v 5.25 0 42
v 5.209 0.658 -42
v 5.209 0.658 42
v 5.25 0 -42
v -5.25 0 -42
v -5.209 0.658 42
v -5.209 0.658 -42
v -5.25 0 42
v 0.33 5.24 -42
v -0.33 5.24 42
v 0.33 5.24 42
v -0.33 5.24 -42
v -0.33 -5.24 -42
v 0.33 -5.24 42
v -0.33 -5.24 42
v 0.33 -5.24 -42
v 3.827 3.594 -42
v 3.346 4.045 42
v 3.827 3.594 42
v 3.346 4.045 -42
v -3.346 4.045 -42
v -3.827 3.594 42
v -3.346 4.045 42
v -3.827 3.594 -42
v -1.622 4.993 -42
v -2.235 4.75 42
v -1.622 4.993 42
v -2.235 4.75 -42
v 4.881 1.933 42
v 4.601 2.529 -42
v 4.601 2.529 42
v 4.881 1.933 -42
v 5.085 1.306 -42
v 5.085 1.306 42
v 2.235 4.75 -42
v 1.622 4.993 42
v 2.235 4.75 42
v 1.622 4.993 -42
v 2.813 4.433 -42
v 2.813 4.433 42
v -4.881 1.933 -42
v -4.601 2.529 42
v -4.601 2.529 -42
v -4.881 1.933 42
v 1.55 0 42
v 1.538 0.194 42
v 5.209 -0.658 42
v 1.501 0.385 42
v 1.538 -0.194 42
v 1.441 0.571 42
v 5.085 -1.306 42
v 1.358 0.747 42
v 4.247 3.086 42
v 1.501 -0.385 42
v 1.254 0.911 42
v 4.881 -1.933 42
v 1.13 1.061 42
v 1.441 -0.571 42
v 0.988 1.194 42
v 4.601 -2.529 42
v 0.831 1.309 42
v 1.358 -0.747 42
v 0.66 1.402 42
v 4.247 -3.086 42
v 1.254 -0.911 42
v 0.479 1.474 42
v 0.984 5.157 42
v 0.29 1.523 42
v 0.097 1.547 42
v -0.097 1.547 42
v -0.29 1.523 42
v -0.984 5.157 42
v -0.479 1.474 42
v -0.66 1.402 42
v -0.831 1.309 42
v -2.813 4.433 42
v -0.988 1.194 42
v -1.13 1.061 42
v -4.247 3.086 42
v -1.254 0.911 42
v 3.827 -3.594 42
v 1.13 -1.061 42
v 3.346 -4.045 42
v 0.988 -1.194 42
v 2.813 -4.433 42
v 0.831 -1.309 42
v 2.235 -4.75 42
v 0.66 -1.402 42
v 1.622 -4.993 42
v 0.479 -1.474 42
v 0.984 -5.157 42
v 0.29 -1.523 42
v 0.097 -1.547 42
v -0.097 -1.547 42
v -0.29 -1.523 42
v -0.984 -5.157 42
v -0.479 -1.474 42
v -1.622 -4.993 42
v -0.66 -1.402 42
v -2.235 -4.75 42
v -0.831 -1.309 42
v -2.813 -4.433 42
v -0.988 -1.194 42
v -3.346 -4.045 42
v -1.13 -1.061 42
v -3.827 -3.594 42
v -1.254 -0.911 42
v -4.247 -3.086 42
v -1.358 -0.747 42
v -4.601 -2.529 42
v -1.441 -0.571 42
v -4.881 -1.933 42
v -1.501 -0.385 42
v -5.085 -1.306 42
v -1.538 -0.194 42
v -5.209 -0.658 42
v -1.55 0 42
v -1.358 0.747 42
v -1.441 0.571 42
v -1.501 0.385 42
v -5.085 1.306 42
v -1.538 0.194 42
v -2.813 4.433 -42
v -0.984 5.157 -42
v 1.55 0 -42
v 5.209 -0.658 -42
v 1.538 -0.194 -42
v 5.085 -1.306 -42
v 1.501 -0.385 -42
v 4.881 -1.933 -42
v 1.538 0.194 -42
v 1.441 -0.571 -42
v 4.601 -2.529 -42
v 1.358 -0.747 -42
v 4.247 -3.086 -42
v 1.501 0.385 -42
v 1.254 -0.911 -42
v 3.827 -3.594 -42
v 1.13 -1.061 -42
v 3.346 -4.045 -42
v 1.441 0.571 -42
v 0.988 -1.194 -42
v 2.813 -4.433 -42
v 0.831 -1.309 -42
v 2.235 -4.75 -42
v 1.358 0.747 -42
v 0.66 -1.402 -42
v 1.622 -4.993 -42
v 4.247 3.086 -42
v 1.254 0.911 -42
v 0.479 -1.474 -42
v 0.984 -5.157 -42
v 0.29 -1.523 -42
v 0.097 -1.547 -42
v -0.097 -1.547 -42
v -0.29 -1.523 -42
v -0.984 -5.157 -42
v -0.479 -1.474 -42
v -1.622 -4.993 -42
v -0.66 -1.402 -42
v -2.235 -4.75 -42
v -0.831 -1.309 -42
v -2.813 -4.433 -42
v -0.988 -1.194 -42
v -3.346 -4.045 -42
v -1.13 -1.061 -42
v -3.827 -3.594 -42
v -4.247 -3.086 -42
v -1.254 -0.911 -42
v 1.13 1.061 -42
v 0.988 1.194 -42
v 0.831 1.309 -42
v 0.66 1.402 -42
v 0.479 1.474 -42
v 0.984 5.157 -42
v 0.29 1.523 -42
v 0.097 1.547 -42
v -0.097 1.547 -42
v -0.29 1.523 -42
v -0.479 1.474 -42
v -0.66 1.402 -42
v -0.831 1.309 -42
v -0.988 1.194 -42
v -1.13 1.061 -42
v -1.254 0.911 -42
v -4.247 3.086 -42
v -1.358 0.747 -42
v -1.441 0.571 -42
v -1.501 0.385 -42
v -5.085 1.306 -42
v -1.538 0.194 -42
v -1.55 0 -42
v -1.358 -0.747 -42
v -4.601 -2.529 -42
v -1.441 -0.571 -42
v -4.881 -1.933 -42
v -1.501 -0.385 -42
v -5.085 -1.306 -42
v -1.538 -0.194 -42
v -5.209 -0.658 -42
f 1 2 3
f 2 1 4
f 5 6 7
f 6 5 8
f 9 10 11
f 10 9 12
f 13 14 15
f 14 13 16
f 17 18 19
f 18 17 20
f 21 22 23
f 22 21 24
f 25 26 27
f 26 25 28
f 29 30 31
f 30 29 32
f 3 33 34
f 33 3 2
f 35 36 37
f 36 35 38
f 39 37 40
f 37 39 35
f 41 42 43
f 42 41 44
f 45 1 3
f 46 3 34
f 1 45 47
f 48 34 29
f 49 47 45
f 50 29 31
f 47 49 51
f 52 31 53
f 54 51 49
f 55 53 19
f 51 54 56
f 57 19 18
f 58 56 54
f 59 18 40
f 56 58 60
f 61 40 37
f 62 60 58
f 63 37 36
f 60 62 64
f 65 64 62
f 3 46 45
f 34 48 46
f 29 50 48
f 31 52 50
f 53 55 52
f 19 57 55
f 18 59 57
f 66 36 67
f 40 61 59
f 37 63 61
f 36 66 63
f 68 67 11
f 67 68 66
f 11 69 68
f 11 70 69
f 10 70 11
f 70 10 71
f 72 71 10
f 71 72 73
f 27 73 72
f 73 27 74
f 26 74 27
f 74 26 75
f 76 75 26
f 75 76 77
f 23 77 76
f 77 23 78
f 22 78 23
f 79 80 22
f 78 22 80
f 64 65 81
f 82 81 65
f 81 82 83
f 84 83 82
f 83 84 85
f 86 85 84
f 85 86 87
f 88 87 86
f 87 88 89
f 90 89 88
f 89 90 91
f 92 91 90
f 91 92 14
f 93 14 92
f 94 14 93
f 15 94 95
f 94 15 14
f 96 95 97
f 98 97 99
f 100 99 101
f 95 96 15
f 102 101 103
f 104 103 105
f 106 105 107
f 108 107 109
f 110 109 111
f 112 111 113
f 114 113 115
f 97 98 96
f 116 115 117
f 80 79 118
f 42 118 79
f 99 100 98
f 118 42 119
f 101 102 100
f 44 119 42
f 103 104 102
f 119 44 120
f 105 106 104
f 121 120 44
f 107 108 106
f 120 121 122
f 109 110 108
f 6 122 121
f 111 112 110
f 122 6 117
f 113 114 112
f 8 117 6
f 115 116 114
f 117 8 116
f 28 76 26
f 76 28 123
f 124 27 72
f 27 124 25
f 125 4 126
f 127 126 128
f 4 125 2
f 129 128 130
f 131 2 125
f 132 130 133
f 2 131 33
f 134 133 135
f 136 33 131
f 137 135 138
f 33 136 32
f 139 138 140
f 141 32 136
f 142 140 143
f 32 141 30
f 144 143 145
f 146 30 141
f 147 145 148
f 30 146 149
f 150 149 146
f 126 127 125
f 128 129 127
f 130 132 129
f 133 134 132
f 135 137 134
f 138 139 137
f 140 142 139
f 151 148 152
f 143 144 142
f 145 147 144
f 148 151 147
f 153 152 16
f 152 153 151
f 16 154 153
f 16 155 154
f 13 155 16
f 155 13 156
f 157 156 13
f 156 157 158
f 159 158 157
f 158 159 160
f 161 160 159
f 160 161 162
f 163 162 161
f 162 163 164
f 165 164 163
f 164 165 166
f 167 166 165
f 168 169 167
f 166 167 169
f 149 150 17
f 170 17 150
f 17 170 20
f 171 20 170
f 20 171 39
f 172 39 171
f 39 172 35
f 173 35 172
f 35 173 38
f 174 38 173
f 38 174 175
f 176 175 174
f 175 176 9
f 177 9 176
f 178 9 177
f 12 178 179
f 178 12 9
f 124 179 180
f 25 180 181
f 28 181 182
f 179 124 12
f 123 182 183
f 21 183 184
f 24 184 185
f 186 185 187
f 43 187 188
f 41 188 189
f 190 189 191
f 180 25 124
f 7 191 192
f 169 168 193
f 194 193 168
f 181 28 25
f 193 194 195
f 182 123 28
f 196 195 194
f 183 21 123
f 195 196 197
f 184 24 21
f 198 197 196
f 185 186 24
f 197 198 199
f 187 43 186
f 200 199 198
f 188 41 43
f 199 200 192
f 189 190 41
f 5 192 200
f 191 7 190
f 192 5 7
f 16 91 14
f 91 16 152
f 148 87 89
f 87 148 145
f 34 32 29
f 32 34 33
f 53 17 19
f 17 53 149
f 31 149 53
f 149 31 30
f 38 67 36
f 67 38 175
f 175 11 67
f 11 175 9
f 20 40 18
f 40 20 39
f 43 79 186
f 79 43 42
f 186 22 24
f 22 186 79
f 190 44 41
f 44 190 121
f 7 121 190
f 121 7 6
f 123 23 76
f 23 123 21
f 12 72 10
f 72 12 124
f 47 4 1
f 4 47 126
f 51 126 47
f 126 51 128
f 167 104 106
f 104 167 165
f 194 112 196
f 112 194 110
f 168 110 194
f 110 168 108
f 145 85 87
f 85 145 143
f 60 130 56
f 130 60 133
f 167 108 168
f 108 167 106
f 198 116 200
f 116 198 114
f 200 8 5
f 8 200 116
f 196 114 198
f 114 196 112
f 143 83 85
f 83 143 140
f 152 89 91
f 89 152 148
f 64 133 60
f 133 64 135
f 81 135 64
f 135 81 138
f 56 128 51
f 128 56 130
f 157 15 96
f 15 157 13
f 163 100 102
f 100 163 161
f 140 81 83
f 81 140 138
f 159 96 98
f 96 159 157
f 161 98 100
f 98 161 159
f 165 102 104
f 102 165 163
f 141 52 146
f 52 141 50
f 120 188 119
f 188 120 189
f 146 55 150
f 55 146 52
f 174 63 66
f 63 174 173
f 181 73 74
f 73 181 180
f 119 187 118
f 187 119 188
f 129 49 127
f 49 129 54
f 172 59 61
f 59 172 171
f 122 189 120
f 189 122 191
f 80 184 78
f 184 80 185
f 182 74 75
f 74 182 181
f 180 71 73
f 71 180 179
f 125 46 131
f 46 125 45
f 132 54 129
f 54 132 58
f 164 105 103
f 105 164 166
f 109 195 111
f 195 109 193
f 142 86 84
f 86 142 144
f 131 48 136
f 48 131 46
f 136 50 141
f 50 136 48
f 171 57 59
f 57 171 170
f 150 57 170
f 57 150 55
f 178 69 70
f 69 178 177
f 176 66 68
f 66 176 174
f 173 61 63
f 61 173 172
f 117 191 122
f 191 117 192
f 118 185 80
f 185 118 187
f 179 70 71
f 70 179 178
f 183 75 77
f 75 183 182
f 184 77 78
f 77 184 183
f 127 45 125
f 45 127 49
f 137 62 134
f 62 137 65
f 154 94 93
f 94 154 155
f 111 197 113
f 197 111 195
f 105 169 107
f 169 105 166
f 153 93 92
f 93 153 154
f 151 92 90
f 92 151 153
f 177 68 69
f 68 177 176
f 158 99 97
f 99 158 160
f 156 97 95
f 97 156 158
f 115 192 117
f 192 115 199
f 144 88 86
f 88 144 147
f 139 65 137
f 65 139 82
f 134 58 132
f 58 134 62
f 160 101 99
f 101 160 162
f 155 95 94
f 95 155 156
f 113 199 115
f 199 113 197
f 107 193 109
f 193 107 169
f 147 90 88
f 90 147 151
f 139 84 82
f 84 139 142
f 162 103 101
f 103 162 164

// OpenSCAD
$fn = 50;


difference() {
	union() {
		translate(v = [0, 0, -42.0000000000]) {
			cylinder(h = 84, r = 5.2500000000);
		}
	}
	union() {
		translate(v = [0, 0, -100.0000000000]) {
			cylinder(h = 200, r = 1.5500000000);
		}
	}
}
